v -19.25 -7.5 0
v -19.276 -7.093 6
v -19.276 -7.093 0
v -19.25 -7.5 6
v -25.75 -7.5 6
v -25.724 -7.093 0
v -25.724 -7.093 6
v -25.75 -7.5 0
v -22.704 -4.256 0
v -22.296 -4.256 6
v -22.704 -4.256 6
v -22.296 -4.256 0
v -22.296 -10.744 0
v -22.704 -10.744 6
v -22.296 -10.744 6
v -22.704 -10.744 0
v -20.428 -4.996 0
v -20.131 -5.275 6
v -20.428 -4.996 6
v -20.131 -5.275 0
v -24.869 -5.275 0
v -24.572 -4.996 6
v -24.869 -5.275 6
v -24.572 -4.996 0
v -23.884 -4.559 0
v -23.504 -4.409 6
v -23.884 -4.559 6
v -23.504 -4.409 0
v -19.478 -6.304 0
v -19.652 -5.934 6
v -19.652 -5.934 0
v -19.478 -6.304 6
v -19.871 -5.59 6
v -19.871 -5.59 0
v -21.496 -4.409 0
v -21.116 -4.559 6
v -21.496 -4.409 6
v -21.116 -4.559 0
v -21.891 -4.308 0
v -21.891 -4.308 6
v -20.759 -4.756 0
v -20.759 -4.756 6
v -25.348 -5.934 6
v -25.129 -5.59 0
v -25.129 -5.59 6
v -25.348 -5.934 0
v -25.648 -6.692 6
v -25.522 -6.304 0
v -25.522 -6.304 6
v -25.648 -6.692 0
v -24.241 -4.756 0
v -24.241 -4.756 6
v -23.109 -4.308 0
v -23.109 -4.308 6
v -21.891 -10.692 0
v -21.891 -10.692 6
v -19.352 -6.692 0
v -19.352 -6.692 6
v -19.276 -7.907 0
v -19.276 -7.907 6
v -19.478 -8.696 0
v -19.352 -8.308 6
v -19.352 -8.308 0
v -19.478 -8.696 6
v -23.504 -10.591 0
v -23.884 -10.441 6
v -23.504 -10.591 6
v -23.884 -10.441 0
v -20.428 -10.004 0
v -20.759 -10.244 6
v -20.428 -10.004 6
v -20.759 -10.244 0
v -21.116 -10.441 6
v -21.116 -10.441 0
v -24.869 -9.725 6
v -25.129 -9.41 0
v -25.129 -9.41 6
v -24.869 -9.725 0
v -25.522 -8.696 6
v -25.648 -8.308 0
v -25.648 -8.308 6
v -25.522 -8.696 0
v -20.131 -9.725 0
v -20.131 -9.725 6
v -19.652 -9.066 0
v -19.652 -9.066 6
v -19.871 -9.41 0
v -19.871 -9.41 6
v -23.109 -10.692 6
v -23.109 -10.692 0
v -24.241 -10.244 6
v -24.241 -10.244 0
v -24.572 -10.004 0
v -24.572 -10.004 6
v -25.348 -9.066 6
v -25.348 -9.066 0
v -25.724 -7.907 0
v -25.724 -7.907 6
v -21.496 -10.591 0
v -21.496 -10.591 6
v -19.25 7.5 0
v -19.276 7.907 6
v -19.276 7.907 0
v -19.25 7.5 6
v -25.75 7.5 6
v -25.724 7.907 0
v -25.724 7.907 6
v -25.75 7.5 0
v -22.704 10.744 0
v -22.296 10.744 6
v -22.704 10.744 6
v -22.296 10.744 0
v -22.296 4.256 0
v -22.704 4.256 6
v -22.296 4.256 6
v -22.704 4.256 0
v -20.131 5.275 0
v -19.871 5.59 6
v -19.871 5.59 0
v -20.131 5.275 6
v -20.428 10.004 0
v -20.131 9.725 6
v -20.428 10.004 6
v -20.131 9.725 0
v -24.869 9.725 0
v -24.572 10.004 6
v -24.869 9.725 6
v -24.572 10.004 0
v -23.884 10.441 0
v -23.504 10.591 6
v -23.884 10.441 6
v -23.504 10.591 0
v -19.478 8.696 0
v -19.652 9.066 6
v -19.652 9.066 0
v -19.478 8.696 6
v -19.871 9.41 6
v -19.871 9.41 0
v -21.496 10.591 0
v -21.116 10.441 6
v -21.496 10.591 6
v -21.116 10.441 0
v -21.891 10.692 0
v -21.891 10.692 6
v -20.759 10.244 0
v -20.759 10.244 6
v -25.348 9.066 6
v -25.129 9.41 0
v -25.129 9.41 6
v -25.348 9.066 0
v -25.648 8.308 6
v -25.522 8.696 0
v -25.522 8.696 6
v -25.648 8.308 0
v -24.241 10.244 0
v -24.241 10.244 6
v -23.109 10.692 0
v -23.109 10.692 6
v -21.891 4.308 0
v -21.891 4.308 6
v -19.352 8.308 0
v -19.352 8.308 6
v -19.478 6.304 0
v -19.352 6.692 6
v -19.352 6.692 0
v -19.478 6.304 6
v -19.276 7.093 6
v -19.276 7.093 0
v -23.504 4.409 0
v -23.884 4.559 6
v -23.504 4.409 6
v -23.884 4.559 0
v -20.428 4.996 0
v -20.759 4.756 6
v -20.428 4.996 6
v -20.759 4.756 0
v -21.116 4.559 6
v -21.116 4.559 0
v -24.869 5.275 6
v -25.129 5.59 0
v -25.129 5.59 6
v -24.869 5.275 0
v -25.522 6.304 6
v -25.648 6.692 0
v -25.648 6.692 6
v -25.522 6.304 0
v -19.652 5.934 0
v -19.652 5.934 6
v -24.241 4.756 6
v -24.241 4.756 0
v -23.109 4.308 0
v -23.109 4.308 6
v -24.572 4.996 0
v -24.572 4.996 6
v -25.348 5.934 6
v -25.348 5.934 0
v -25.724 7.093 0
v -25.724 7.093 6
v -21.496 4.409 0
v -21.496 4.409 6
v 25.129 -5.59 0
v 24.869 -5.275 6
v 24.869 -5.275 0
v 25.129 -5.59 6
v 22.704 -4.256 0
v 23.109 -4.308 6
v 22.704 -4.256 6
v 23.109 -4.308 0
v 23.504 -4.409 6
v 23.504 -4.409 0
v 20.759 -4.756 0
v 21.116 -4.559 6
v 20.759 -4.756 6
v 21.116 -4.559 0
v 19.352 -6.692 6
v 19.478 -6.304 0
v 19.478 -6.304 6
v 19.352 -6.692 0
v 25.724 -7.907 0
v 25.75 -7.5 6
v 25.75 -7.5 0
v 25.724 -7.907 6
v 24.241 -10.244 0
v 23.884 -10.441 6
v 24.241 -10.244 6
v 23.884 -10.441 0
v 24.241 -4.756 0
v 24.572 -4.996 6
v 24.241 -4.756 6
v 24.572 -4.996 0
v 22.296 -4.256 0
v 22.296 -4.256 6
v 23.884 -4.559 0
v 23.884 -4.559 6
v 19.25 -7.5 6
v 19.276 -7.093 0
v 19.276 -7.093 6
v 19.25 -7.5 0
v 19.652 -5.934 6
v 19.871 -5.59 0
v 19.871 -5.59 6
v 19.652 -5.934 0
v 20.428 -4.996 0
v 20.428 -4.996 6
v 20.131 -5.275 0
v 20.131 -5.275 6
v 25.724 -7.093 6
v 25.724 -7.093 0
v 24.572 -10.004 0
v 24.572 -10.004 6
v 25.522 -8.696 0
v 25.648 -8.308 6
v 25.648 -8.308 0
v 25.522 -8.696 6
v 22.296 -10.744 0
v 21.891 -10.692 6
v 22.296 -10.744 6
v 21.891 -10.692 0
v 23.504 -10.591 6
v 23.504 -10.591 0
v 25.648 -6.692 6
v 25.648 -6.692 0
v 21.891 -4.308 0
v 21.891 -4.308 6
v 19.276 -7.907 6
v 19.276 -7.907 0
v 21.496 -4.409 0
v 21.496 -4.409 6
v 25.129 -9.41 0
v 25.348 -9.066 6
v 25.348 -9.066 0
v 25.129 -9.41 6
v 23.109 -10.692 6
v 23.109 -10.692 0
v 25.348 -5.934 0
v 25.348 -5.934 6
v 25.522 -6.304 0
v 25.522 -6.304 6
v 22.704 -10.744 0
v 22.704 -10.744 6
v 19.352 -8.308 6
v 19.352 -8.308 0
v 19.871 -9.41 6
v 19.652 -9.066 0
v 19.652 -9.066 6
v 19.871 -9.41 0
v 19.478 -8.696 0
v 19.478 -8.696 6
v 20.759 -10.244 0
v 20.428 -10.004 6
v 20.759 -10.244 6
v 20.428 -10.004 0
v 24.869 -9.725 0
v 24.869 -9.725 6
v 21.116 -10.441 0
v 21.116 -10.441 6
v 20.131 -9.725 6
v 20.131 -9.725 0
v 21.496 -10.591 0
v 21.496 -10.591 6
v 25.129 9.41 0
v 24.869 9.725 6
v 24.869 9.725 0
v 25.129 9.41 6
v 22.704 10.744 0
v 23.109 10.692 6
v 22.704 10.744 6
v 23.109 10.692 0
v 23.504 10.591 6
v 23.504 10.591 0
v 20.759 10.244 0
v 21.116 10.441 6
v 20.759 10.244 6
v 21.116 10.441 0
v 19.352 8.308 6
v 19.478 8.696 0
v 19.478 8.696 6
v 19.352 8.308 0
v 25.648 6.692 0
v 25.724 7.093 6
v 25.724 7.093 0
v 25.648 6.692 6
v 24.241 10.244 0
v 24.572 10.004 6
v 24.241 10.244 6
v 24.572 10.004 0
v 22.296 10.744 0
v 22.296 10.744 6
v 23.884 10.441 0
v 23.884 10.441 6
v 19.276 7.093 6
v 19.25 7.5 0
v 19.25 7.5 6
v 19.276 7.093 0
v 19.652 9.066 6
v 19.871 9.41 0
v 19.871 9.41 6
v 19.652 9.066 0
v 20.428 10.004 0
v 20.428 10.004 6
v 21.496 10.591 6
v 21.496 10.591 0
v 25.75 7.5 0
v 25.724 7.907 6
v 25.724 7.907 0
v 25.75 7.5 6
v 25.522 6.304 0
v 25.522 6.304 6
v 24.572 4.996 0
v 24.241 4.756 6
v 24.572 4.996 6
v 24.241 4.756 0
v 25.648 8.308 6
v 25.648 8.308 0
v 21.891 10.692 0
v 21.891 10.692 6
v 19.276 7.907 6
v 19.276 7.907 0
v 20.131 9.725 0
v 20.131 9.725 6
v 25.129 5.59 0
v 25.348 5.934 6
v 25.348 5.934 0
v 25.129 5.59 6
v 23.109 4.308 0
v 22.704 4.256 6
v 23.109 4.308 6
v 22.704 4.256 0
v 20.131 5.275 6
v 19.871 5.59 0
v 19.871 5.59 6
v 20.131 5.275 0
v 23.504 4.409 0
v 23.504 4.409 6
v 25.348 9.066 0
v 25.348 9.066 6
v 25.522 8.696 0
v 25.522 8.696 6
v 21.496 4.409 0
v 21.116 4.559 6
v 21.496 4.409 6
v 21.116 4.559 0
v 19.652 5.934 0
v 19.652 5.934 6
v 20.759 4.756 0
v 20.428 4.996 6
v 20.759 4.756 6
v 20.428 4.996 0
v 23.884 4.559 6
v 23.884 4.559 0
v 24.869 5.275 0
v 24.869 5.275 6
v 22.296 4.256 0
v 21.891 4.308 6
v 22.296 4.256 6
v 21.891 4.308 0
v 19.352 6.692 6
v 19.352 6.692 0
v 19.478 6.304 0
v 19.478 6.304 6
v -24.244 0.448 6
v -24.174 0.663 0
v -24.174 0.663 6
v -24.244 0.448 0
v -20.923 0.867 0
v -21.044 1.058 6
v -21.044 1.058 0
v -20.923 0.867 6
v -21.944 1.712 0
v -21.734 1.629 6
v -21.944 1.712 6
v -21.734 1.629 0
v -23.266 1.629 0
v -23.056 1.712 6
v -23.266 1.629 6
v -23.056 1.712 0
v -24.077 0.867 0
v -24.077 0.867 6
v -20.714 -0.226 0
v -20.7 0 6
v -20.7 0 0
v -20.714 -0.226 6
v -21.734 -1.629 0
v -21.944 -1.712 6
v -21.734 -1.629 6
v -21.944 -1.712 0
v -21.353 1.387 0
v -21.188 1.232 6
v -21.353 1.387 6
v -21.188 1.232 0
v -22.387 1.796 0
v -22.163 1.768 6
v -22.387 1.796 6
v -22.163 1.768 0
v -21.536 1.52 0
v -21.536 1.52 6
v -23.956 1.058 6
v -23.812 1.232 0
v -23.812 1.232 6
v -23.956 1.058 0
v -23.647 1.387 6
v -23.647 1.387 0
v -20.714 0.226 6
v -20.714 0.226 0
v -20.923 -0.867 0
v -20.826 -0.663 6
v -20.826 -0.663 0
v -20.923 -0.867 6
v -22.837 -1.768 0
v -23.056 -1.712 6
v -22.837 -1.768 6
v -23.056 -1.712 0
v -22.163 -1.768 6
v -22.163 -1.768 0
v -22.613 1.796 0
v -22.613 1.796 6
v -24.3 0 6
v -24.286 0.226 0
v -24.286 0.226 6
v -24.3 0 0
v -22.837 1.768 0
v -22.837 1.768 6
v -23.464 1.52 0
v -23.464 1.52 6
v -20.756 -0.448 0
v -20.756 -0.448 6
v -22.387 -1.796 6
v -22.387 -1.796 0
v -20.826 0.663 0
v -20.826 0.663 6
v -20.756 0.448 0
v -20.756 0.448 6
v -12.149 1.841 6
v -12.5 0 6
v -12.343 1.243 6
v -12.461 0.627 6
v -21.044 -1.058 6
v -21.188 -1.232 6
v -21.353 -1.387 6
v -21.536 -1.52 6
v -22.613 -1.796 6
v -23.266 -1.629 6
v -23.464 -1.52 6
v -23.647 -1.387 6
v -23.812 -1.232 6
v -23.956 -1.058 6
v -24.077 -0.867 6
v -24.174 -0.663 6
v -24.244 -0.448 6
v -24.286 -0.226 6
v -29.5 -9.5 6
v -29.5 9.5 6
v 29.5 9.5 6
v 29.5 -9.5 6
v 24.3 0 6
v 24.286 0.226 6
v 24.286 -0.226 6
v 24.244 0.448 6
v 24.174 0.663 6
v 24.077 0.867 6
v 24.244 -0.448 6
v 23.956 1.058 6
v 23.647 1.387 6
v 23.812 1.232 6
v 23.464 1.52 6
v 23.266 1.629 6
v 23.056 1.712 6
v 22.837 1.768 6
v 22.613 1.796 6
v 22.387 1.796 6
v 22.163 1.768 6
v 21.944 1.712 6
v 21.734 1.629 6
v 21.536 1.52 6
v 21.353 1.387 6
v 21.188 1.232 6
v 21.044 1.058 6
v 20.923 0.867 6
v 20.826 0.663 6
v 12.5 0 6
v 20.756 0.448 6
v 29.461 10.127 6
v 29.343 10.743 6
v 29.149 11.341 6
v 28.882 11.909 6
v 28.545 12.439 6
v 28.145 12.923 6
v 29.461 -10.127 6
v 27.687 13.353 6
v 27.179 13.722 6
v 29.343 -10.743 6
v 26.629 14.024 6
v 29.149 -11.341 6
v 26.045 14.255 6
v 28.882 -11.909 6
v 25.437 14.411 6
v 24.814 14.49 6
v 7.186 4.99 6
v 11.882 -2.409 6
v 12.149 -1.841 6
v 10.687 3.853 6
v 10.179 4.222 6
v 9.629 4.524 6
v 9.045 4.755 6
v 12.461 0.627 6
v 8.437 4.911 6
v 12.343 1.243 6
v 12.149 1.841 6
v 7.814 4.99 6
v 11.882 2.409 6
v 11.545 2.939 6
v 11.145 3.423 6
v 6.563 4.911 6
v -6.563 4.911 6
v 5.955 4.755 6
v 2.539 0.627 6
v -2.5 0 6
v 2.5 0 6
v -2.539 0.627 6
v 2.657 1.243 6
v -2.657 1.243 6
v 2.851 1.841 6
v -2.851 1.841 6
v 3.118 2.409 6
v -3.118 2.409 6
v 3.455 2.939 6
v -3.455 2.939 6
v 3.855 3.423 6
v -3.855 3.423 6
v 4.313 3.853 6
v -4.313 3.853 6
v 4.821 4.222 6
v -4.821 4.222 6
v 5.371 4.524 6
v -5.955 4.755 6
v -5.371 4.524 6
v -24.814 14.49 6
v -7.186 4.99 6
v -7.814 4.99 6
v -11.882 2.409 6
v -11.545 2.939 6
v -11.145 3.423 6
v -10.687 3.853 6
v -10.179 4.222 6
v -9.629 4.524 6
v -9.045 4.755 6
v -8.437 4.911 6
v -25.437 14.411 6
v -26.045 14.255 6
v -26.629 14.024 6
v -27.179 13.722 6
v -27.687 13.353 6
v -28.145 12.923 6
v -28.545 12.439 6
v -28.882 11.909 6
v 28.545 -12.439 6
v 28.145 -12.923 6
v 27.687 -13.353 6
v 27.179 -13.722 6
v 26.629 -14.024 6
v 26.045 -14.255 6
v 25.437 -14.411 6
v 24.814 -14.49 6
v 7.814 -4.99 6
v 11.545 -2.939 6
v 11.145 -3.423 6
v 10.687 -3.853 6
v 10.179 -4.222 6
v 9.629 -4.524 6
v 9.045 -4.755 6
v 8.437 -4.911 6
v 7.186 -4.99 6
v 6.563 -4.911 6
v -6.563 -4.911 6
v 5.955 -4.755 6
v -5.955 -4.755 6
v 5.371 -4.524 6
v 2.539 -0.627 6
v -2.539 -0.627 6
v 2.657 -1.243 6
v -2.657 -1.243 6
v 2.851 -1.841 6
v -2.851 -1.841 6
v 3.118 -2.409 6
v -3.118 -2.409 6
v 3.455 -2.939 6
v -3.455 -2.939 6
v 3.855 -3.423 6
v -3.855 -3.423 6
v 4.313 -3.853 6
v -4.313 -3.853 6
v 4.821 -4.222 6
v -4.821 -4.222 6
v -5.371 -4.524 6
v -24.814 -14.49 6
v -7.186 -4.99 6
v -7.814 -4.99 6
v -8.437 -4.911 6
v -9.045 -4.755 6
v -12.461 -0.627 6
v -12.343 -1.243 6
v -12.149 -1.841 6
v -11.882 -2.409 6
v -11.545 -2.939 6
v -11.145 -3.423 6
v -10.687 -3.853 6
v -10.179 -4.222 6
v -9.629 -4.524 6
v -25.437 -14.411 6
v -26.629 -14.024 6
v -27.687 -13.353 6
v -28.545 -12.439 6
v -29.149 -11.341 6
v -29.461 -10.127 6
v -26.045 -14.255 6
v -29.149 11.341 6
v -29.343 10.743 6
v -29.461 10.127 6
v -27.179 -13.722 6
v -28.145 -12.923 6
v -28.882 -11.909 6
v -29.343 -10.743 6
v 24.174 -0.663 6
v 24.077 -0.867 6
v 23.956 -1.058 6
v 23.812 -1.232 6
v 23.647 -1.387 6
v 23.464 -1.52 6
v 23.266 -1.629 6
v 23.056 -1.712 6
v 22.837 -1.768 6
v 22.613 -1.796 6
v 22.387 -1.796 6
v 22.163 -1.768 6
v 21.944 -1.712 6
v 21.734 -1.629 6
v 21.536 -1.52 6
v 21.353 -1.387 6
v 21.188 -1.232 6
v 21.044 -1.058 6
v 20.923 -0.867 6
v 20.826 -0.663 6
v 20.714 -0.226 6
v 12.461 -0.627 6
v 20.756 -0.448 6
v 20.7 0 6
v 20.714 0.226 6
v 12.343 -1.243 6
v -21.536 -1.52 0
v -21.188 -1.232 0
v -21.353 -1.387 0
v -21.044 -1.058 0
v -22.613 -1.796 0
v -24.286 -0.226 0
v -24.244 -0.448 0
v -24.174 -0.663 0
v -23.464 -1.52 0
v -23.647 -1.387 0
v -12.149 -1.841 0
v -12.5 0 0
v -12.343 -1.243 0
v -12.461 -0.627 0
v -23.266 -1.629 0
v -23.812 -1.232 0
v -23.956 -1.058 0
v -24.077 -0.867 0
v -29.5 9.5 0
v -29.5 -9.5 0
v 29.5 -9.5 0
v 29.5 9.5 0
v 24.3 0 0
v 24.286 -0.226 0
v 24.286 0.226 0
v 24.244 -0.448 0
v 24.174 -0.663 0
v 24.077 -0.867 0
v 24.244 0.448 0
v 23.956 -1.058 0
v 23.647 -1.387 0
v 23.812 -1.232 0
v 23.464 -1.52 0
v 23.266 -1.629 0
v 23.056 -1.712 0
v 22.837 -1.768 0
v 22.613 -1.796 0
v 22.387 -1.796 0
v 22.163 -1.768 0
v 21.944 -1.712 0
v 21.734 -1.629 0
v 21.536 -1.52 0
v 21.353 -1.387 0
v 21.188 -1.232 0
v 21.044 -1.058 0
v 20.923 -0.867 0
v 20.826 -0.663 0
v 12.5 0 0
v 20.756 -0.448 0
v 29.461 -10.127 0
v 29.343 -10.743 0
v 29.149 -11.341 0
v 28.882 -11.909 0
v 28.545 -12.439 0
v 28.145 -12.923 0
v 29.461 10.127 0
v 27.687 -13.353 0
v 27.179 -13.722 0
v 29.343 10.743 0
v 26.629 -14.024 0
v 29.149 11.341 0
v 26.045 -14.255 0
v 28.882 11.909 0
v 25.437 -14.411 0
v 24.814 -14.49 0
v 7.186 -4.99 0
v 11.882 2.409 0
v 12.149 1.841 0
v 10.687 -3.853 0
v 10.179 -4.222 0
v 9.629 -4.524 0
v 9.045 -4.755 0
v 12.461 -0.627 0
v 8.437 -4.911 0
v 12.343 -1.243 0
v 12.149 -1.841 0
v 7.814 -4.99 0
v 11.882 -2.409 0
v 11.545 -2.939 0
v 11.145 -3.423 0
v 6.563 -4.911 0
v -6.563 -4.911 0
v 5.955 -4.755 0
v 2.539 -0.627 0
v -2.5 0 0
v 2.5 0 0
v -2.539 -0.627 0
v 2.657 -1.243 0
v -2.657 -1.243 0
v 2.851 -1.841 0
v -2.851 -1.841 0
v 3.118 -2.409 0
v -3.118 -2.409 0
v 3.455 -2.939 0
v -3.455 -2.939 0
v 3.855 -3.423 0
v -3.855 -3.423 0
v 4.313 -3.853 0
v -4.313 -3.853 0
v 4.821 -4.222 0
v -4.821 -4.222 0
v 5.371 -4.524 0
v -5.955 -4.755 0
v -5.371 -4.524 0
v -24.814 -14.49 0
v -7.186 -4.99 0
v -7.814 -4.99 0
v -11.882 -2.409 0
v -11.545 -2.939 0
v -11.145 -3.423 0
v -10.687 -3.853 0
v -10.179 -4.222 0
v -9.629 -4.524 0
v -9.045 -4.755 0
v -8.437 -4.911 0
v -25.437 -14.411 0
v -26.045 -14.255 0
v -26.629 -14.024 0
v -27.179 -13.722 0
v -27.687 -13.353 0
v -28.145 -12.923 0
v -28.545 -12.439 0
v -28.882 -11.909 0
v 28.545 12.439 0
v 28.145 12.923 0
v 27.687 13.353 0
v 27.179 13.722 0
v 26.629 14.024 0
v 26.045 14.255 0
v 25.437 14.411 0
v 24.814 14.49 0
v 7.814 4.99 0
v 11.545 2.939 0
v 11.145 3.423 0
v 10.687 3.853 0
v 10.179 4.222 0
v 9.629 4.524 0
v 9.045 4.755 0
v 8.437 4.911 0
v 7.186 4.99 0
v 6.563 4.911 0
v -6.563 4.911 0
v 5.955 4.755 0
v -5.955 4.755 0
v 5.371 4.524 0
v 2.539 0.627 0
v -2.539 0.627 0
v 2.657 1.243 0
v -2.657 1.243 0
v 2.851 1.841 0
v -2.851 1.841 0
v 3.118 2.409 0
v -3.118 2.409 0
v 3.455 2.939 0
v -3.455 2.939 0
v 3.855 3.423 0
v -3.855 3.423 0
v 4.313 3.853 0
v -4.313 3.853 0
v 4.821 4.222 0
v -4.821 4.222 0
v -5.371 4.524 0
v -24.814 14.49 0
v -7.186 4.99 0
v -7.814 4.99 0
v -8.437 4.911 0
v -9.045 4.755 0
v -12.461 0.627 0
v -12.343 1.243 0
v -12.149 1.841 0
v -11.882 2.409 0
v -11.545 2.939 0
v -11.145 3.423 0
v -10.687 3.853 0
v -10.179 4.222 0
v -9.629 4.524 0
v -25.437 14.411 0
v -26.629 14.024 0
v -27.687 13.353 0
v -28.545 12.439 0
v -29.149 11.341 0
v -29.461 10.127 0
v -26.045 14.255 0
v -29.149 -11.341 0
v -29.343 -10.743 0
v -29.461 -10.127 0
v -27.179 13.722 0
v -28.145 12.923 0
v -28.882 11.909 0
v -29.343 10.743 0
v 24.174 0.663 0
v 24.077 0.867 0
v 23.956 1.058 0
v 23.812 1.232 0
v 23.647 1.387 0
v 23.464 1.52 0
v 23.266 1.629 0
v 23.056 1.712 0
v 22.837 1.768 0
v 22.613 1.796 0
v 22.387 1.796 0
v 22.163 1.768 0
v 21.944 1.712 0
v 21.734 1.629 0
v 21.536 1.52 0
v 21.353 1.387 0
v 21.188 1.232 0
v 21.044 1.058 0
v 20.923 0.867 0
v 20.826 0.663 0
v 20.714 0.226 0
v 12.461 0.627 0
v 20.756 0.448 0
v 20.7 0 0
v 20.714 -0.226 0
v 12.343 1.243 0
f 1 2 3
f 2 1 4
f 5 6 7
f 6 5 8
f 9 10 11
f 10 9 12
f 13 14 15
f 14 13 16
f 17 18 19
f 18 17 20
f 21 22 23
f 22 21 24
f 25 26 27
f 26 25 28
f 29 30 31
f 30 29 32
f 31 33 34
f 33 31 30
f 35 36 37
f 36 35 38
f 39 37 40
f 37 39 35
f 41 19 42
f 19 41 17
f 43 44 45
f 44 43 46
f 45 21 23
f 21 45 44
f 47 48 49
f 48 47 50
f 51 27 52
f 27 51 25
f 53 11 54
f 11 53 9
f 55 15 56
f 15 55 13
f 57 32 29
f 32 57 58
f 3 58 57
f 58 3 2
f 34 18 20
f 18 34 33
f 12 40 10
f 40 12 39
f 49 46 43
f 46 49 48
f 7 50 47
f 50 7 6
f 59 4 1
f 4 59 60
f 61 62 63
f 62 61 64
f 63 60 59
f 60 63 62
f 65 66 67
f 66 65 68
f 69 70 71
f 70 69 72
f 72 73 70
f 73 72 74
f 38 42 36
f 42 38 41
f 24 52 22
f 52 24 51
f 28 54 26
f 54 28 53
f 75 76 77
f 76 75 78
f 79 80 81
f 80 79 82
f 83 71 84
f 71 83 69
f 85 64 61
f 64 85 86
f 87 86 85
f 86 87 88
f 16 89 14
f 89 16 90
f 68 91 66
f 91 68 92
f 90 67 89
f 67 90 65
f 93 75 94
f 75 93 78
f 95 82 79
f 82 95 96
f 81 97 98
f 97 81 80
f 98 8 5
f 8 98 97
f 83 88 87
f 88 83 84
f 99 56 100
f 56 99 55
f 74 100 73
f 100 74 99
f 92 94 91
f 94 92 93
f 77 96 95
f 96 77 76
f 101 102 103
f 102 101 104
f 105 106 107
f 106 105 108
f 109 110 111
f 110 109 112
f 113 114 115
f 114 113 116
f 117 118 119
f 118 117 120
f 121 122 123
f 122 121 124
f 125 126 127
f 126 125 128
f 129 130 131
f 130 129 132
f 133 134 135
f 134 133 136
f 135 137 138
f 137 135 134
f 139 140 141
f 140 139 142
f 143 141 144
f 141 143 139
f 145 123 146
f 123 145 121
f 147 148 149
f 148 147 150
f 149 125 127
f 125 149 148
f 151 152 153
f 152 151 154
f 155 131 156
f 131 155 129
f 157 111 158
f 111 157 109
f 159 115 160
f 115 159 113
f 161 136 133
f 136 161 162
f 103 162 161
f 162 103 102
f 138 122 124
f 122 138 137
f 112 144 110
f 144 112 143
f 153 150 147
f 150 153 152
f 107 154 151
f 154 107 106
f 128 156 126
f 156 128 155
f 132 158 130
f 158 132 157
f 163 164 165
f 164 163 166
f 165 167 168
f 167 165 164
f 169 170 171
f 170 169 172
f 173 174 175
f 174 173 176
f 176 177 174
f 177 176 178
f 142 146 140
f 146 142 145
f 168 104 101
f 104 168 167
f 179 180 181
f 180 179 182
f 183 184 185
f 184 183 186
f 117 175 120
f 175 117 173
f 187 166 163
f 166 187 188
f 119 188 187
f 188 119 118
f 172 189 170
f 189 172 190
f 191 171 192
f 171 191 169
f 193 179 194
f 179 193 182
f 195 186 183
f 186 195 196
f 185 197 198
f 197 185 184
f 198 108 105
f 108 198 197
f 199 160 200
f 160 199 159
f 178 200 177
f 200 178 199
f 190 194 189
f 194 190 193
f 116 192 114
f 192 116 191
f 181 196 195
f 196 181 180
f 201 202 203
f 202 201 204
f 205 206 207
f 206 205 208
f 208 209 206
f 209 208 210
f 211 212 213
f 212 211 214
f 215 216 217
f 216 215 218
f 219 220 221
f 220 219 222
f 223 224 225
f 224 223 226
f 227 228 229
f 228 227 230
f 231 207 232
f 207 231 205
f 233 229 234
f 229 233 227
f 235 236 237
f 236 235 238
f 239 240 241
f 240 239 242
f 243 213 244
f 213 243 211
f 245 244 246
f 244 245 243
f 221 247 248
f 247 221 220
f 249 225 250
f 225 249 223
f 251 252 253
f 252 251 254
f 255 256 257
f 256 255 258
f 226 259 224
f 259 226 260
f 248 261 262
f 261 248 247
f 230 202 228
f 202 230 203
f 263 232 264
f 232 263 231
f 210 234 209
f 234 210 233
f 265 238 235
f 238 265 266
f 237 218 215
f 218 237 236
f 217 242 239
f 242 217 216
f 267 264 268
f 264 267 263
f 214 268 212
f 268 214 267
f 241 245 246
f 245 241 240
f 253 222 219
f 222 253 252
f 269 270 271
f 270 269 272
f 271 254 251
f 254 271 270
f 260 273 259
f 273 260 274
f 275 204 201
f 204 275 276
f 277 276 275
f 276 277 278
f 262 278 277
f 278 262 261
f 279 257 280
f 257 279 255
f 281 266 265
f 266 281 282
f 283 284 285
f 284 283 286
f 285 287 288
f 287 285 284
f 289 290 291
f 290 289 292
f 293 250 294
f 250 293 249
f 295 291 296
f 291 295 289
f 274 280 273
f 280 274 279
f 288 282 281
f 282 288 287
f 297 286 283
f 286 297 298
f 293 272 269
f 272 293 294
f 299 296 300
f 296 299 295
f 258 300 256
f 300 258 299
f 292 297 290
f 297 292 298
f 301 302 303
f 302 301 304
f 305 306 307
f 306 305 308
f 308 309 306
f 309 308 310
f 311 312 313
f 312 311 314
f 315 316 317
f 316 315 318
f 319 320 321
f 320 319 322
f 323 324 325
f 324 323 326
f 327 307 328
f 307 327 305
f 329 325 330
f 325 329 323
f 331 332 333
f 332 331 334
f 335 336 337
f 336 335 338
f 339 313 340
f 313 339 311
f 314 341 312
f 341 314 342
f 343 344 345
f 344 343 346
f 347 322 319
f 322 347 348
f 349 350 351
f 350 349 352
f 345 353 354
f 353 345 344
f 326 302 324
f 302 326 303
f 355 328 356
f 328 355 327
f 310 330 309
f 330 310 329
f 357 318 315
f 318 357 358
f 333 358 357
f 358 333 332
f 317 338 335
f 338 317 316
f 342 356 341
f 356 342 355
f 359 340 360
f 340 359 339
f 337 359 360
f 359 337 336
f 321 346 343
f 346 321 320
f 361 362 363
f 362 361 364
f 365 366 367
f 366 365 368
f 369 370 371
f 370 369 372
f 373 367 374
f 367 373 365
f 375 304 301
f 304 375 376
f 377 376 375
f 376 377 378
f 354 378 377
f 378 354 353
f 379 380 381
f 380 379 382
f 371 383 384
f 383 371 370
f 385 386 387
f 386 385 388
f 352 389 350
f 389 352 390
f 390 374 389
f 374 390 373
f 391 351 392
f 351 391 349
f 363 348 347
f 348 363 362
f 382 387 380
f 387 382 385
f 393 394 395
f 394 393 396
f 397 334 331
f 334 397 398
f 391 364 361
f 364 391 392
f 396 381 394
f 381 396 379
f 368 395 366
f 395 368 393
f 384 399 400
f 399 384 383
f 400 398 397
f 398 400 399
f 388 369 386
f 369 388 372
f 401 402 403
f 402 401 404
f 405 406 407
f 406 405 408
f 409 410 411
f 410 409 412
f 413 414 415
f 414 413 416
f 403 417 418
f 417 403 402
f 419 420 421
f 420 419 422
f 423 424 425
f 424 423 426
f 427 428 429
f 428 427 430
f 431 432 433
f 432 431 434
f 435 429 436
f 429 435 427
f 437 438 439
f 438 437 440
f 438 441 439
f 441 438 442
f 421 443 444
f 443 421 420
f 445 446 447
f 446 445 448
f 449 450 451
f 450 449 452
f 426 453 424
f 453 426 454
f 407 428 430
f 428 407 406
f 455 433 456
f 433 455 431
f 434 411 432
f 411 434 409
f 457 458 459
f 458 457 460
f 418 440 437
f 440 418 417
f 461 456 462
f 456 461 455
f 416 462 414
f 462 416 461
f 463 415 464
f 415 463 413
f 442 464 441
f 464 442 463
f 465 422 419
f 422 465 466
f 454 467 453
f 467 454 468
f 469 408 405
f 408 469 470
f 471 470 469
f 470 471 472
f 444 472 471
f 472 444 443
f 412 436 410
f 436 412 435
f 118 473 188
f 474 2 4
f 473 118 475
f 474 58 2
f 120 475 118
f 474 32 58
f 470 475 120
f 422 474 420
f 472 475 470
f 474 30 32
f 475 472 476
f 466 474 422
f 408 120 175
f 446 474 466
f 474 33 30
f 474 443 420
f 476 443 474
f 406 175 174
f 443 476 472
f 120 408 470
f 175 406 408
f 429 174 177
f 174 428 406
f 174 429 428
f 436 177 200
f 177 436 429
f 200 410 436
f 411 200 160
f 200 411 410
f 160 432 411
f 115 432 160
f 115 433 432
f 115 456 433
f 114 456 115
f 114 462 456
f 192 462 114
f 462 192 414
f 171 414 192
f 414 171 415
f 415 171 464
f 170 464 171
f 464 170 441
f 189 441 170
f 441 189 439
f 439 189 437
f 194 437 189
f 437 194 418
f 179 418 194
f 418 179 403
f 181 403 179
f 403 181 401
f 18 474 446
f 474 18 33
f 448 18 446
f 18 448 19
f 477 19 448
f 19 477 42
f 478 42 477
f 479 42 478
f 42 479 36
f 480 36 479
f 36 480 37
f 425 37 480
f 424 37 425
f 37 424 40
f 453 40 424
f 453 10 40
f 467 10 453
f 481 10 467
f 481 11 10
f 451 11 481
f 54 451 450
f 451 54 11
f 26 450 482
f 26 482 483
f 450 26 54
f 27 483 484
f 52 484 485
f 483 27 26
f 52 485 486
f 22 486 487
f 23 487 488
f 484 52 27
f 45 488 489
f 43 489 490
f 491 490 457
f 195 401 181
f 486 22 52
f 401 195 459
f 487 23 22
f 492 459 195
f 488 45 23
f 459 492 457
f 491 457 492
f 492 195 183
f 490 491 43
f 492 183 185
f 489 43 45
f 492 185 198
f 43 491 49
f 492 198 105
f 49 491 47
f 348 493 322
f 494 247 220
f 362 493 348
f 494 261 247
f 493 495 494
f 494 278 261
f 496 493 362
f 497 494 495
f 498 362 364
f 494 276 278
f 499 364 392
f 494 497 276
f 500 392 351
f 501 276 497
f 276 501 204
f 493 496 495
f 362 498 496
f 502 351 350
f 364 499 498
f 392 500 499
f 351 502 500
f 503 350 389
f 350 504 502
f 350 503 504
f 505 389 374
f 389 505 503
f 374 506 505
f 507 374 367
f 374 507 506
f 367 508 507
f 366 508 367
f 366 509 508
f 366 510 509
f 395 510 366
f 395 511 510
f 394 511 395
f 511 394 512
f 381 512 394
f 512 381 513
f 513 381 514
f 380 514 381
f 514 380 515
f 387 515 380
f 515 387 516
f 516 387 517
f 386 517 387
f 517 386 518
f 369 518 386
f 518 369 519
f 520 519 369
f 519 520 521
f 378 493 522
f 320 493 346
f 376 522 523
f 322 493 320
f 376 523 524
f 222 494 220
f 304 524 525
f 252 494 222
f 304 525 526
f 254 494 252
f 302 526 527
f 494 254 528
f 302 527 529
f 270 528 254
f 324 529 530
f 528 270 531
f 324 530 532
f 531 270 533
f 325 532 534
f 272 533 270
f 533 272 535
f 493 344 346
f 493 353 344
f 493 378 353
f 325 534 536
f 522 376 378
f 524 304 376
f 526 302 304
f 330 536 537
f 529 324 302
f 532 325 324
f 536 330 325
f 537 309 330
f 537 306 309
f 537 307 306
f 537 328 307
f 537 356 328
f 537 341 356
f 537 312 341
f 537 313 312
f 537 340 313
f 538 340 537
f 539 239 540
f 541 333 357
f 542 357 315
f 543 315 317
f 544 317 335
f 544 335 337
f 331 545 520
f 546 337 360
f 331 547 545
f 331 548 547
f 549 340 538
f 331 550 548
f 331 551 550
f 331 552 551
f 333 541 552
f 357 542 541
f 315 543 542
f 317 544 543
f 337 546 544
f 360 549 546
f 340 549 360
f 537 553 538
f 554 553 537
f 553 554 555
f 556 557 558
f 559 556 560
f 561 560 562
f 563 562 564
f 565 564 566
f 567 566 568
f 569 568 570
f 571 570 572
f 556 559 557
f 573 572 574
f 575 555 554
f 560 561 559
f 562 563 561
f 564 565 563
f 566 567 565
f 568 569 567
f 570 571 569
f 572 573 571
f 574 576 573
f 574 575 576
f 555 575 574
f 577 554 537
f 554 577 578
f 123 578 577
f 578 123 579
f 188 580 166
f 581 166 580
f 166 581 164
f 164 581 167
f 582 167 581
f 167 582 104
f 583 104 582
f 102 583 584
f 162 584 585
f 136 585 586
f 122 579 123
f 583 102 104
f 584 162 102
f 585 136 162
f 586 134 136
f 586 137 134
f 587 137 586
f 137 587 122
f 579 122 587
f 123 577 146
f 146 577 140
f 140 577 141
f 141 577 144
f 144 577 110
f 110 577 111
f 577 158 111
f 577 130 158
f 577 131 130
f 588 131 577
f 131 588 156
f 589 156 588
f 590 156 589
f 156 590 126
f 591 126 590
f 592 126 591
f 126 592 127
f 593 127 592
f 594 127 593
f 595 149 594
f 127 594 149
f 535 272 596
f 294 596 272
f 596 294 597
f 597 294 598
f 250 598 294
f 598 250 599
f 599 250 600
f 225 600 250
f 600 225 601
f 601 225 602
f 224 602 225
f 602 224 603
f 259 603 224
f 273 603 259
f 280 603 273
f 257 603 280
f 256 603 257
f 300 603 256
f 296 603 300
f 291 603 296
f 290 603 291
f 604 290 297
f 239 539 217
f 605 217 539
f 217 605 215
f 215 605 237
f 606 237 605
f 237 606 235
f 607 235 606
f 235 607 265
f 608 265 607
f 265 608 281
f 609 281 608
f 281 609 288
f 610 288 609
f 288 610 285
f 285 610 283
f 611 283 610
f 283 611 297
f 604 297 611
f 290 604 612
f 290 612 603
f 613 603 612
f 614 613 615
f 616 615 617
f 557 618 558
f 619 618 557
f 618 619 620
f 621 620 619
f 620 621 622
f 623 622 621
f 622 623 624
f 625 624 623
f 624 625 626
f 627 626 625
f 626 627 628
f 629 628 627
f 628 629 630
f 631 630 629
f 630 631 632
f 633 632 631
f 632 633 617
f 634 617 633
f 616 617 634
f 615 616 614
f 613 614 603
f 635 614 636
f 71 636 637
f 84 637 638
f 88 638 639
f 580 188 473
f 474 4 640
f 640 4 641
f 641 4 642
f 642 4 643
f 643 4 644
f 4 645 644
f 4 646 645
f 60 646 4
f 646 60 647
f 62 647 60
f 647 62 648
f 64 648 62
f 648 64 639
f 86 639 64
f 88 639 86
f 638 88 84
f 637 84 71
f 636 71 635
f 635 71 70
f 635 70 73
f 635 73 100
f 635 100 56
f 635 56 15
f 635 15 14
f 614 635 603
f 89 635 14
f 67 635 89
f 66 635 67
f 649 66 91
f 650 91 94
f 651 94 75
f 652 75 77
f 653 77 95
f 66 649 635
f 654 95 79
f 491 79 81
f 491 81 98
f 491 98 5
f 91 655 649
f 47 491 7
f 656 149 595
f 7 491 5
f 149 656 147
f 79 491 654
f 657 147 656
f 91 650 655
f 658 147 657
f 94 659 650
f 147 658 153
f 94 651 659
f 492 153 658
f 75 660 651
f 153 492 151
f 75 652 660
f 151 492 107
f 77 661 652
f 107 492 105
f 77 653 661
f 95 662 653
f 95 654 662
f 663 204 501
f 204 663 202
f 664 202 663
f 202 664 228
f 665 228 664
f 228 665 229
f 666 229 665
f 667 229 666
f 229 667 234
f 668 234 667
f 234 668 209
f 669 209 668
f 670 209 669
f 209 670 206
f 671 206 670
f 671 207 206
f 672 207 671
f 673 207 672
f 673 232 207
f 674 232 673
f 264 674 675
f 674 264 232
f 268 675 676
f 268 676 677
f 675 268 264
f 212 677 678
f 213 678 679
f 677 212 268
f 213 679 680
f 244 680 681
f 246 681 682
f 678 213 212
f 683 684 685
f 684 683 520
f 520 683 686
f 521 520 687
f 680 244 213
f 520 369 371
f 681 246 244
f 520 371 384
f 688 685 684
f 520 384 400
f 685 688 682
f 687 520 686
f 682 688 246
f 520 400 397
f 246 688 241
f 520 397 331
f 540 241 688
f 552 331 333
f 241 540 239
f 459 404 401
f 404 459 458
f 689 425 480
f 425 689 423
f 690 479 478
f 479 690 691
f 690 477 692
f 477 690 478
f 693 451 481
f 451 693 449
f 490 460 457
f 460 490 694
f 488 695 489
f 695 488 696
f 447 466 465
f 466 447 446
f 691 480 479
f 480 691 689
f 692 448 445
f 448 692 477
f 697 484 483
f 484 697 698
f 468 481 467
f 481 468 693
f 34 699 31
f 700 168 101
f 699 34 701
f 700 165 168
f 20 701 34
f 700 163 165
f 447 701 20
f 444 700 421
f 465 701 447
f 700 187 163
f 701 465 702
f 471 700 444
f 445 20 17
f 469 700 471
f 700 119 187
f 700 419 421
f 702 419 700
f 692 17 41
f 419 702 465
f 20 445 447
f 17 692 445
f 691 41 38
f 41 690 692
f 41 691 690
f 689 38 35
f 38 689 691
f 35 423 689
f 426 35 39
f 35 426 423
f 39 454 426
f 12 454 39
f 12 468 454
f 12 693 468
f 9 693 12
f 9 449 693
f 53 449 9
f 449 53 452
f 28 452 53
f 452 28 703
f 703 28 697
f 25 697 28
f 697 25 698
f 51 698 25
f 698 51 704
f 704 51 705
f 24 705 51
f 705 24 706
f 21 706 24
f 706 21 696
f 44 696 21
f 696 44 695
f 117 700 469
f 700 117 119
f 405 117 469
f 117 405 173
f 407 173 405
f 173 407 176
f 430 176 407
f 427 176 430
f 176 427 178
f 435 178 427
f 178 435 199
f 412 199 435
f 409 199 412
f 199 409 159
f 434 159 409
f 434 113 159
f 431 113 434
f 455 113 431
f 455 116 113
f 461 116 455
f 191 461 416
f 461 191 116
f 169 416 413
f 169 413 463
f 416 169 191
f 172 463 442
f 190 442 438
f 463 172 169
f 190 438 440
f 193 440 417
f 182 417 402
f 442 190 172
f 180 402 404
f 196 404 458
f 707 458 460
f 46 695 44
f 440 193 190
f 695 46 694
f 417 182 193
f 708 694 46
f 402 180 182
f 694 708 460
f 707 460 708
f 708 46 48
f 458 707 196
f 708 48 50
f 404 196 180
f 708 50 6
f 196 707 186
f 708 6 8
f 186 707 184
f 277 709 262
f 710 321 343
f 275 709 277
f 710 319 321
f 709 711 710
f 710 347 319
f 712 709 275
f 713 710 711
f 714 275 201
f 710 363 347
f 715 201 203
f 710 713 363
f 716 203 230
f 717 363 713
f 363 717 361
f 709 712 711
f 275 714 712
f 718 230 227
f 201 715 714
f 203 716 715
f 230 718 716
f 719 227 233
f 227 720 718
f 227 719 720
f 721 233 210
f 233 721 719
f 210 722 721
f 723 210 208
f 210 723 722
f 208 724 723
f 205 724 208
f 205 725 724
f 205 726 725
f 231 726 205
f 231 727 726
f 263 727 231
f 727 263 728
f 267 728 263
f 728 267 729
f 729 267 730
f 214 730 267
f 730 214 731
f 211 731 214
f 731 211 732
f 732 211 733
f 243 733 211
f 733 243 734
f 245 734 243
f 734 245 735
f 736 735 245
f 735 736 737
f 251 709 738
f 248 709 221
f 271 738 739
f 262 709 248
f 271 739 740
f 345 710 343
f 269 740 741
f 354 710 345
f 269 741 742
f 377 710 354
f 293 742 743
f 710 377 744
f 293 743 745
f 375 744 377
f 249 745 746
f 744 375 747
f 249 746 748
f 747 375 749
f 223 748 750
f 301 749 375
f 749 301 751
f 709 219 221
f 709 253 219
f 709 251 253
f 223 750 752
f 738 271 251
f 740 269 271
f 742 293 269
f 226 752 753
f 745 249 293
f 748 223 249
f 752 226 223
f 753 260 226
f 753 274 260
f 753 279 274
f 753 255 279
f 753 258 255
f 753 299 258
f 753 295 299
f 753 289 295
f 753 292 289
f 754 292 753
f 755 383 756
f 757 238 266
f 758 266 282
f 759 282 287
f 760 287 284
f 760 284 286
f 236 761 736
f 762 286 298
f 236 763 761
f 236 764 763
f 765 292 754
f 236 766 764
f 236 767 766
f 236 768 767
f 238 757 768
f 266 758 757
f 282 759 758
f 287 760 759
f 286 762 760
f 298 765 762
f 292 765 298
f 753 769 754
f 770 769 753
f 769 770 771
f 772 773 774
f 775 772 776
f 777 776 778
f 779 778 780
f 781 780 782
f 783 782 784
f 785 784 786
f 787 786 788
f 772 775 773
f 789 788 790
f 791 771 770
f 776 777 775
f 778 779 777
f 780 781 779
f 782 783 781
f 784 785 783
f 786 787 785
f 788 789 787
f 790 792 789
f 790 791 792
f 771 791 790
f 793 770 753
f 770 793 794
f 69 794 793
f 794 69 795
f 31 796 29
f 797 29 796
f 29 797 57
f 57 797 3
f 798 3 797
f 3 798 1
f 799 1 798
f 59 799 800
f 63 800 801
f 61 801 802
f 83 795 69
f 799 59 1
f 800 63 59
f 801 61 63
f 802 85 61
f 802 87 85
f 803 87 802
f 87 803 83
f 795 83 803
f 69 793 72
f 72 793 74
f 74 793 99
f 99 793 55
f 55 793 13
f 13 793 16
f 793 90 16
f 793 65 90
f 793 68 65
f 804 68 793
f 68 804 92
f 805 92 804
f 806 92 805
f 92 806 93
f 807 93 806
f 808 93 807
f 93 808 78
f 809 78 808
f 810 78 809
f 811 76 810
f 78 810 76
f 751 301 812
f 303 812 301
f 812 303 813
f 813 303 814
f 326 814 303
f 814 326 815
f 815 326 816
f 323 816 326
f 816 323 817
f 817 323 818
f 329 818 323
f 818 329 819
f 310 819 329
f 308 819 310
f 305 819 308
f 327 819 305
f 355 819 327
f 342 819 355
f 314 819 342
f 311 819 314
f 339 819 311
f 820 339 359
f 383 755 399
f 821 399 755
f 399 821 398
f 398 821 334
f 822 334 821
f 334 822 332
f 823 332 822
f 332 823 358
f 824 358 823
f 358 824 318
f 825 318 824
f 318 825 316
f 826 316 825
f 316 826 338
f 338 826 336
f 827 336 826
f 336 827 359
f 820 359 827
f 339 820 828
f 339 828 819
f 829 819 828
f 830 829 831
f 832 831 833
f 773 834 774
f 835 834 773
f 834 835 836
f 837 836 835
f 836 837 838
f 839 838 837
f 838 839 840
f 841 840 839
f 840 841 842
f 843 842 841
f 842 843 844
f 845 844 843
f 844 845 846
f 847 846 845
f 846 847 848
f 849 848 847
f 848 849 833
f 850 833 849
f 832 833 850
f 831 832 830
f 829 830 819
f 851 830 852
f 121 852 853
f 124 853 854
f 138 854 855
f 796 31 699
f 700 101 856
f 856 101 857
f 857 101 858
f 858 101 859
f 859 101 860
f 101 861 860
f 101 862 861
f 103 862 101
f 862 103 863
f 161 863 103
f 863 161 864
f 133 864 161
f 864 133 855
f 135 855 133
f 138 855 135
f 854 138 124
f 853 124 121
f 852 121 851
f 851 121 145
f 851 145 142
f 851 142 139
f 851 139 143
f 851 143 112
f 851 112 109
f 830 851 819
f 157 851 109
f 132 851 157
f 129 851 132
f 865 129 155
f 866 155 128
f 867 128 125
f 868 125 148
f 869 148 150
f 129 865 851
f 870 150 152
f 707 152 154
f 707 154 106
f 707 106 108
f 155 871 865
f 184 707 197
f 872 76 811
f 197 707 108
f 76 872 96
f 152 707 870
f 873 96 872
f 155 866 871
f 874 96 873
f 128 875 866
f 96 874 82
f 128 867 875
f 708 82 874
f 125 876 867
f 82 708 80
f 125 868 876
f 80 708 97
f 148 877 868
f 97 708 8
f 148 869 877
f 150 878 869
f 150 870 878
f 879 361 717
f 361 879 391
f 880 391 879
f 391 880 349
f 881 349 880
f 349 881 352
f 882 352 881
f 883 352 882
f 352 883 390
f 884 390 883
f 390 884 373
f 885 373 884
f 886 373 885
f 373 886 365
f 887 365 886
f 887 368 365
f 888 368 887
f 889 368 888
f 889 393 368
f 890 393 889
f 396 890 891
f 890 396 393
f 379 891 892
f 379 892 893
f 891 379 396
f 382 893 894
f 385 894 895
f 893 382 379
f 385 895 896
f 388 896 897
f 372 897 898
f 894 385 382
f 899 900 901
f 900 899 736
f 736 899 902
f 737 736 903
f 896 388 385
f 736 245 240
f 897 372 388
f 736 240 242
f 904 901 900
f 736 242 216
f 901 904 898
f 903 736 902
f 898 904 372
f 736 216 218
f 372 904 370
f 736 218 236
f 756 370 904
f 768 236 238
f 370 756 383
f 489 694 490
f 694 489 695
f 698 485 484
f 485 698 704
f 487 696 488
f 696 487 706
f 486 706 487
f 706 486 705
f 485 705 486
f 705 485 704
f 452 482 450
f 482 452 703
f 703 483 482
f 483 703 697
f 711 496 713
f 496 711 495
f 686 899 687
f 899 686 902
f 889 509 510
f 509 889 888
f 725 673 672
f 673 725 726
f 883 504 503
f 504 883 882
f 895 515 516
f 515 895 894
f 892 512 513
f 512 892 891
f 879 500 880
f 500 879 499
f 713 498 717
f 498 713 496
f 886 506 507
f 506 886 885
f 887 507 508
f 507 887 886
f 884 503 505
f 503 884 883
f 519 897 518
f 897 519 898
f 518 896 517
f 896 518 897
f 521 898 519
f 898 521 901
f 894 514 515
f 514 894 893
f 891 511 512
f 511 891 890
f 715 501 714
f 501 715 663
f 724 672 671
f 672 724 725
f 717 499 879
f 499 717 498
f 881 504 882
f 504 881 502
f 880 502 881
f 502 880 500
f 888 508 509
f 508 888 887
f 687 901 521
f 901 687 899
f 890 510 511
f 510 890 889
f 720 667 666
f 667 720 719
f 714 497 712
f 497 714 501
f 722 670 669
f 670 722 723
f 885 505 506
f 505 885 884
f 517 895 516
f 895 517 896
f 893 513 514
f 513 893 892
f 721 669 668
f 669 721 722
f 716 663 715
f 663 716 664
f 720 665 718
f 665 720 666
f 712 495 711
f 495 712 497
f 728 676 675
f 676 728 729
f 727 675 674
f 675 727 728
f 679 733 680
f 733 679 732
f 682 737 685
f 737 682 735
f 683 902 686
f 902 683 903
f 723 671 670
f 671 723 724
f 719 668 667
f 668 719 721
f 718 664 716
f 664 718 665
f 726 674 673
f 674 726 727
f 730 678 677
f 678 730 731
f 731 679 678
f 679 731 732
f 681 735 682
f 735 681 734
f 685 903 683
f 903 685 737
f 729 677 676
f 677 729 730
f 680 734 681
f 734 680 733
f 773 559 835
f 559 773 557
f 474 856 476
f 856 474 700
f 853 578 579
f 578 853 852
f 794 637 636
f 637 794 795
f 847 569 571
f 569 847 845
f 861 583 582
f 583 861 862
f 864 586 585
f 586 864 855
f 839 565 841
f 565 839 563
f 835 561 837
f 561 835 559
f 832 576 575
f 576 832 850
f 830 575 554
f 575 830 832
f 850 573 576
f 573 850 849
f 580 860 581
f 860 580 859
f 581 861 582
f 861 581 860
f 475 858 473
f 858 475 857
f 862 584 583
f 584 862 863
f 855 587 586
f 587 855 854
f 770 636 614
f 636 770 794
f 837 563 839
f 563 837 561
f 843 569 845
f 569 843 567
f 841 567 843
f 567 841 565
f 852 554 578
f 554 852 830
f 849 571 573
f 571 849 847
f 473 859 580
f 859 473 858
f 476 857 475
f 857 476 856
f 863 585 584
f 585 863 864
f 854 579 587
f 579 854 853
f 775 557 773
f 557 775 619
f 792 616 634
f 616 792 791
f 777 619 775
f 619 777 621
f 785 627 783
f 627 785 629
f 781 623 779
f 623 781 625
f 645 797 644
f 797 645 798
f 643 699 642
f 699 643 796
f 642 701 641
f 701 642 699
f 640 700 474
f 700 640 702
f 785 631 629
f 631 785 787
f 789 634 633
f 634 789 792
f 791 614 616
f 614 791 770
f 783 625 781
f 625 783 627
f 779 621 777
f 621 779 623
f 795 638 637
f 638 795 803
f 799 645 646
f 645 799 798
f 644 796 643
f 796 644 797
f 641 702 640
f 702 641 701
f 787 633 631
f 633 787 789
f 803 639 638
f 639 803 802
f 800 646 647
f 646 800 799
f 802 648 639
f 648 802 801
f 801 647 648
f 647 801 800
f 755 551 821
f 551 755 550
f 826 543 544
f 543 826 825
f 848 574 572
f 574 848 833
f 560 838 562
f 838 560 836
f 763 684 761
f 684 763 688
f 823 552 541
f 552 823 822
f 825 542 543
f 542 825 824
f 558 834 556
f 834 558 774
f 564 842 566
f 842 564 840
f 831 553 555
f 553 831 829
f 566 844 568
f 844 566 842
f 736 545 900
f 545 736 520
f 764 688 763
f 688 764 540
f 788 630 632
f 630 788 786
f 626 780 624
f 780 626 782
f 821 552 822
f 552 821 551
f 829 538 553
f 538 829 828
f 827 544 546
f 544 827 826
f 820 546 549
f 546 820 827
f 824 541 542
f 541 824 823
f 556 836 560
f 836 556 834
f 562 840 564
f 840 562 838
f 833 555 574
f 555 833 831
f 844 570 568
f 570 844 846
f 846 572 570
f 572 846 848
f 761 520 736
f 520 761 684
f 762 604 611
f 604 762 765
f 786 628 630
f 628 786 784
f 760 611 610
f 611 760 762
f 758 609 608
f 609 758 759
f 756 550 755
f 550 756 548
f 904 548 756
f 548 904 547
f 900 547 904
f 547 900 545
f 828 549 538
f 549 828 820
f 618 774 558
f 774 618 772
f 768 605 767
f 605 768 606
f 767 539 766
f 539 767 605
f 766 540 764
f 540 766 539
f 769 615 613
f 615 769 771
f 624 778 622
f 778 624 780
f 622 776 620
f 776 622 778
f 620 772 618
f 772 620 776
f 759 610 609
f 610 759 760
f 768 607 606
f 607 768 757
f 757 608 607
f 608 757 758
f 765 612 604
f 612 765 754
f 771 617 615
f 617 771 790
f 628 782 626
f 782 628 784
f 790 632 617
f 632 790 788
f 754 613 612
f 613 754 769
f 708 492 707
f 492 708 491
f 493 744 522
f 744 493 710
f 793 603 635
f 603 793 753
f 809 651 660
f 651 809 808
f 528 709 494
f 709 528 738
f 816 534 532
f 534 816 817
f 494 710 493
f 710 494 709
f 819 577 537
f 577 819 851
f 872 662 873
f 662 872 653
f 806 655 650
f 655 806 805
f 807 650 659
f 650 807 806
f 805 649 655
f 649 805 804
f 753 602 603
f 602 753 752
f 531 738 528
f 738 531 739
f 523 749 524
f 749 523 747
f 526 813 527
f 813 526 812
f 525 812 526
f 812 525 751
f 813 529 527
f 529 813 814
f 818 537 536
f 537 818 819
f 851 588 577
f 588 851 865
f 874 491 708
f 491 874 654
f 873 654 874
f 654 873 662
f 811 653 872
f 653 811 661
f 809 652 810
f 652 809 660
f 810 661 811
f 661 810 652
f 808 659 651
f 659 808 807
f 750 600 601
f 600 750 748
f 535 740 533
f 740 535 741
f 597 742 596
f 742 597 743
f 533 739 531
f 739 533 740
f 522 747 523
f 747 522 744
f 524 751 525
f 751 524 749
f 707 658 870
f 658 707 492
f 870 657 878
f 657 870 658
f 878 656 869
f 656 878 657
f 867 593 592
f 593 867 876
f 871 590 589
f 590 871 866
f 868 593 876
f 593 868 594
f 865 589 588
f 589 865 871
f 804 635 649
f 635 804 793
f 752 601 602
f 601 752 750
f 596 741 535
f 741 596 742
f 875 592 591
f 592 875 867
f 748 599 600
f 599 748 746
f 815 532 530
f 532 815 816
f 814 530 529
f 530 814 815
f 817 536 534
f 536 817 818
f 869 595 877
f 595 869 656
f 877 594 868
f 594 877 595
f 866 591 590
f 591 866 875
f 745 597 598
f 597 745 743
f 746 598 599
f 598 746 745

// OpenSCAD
$fn = 50;


difference() {
	union() {
		hull() {
			translate(v = [-24.5000000000, 9.5000000000, 0]) {
				cylinder(h = 6, r = 5);
			}
			translate(v = [24.5000000000, 9.5000000000, 0]) {
				cylinder(h = 6, r = 5);
			}
			translate(v = [-24.5000000000, -9.5000000000, 0]) {
				cylinder(h = 6, r = 5);
			}
			translate(v = [24.5000000000, -9.5000000000, 0]) {
				cylinder(h = 6, r = 5);
			}
		}
	}
	union() {
		#translate(v = [-22.5000000000, -7.5000000000, 0]) {
			cylinder(h = 6, r = 3.2500000000);
		}
		#translate(v = [-22.5000000000, 7.5000000000, 0]) {
			cylinder(h = 6, r = 3.2500000000);
		}
		#translate(v = [22.5000000000, -7.5000000000, 0]) {
			cylinder(h = 6, r = 3.2500000000);
		}
		#translate(v = [22.5000000000, 7.5000000000, 0]) {
			cylinder(h = 6, r = 3.2500000000);
		}
		#translate(v = [-22.5000000000, -7.5000000000, -100.0000000000]) {
			cylinder(h = 200, r = 3.2500000000);
		}
		#translate(v = [-22.5000000000, 7.5000000000, -100.0000000000]) {
			cylinder(h = 200, r = 3.2500000000);
		}
		#translate(v = [22.5000000000, -7.5000000000, -100.0000000000]) {
			cylinder(h = 200, r = 3.2500000000);
		}
		#translate(v = [22.5000000000, 7.5000000000, -100.0000000000]) {
			cylinder(h = 200, r = 3.2500000000);
		}
		#translate(v = [-22.5000000000, -7.5000000000, 0]) {
			cylinder(h = 6, r = 1.8000000000);
		}
		#translate(v = [-22.5000000000, 0.0000000000, 0]) {
			cylinder(h = 6, r = 1.8000000000);
		}
		#translate(v = [-22.5000000000, 7.5000000000, 0]) {
			cylinder(h = 6, r = 1.8000000000);
		}
		#translate(v = [22.5000000000, -7.5000000000, 0]) {
			cylinder(h = 6, r = 1.8000000000);
		}
		#translate(v = [22.5000000000, 0.0000000000, 0]) {
			cylinder(h = 6, r = 1.8000000000);
		}
		#translate(v = [22.5000000000, 7.5000000000, 0]) {
			cylinder(h = 6, r = 1.8000000000);
		}
		#translate(v = [-22.5000000000, -7.5000000000, 0]) {
			cylinder(h = 6, r = 1.8000000000);
		}
		#translate(v = [-22.5000000000, 0.0000000000, 0]) {
			cylinder(h = 6, r = 1.8000000000);
		}
		#translate(v = [-22.5000000000, 7.5000000000, 0]) {
			cylinder(h = 6, r = 1.8000000000);
		}
		#translate(v = [22.5000000000, -7.5000000000, 0]) {
			cylinder(h = 6, r = 1.8000000000);
		}
		#translate(v = [22.5000000000, 0.0000000000, 0]) {
			cylinder(h = 6, r = 1.8000000000);
		}
		#translate(v = [22.5000000000, 7.5000000000, 0]) {
			cylinder(h = 6, r = 1.8000000000);
		}
		#translate(v = [-22.5000000000, -7.5000000000, 0]) {
			cylinder(h = 6, r = 1.8000000000);
		}
		#translate(v = [-22.5000000000, 0.0000000000, 0]) {
			cylinder(h = 6, r = 1.8000000000);
		}
		#translate(v = [-22.5000000000, 7.5000000000, 0]) {
			cylinder(h = 6, r = 1.8000000000);
		}
		#translate(v = [22.5000000000, -7.5000000000, 0]) {
			cylinder(h = 6, r = 1.8000000000);
		}
		#translate(v = [22.5000000000, 0.0000000000, 0]) {
			cylinder(h = 6, r = 1.8000000000);
		}
		#translate(v = [22.5000000000, 7.5000000000, 0]) {
			cylinder(h = 6, r = 1.8000000000);
		}
		#translate(v = [-7.5000000000, 0, 0]) {
			cylinder(h = 6, r = 5.0000000000);
		}
		#translate(v = [7.5000000000, 0, 0]) {
			cylinder(h = 6, r = 5.0000000000);
		}
	}
}
